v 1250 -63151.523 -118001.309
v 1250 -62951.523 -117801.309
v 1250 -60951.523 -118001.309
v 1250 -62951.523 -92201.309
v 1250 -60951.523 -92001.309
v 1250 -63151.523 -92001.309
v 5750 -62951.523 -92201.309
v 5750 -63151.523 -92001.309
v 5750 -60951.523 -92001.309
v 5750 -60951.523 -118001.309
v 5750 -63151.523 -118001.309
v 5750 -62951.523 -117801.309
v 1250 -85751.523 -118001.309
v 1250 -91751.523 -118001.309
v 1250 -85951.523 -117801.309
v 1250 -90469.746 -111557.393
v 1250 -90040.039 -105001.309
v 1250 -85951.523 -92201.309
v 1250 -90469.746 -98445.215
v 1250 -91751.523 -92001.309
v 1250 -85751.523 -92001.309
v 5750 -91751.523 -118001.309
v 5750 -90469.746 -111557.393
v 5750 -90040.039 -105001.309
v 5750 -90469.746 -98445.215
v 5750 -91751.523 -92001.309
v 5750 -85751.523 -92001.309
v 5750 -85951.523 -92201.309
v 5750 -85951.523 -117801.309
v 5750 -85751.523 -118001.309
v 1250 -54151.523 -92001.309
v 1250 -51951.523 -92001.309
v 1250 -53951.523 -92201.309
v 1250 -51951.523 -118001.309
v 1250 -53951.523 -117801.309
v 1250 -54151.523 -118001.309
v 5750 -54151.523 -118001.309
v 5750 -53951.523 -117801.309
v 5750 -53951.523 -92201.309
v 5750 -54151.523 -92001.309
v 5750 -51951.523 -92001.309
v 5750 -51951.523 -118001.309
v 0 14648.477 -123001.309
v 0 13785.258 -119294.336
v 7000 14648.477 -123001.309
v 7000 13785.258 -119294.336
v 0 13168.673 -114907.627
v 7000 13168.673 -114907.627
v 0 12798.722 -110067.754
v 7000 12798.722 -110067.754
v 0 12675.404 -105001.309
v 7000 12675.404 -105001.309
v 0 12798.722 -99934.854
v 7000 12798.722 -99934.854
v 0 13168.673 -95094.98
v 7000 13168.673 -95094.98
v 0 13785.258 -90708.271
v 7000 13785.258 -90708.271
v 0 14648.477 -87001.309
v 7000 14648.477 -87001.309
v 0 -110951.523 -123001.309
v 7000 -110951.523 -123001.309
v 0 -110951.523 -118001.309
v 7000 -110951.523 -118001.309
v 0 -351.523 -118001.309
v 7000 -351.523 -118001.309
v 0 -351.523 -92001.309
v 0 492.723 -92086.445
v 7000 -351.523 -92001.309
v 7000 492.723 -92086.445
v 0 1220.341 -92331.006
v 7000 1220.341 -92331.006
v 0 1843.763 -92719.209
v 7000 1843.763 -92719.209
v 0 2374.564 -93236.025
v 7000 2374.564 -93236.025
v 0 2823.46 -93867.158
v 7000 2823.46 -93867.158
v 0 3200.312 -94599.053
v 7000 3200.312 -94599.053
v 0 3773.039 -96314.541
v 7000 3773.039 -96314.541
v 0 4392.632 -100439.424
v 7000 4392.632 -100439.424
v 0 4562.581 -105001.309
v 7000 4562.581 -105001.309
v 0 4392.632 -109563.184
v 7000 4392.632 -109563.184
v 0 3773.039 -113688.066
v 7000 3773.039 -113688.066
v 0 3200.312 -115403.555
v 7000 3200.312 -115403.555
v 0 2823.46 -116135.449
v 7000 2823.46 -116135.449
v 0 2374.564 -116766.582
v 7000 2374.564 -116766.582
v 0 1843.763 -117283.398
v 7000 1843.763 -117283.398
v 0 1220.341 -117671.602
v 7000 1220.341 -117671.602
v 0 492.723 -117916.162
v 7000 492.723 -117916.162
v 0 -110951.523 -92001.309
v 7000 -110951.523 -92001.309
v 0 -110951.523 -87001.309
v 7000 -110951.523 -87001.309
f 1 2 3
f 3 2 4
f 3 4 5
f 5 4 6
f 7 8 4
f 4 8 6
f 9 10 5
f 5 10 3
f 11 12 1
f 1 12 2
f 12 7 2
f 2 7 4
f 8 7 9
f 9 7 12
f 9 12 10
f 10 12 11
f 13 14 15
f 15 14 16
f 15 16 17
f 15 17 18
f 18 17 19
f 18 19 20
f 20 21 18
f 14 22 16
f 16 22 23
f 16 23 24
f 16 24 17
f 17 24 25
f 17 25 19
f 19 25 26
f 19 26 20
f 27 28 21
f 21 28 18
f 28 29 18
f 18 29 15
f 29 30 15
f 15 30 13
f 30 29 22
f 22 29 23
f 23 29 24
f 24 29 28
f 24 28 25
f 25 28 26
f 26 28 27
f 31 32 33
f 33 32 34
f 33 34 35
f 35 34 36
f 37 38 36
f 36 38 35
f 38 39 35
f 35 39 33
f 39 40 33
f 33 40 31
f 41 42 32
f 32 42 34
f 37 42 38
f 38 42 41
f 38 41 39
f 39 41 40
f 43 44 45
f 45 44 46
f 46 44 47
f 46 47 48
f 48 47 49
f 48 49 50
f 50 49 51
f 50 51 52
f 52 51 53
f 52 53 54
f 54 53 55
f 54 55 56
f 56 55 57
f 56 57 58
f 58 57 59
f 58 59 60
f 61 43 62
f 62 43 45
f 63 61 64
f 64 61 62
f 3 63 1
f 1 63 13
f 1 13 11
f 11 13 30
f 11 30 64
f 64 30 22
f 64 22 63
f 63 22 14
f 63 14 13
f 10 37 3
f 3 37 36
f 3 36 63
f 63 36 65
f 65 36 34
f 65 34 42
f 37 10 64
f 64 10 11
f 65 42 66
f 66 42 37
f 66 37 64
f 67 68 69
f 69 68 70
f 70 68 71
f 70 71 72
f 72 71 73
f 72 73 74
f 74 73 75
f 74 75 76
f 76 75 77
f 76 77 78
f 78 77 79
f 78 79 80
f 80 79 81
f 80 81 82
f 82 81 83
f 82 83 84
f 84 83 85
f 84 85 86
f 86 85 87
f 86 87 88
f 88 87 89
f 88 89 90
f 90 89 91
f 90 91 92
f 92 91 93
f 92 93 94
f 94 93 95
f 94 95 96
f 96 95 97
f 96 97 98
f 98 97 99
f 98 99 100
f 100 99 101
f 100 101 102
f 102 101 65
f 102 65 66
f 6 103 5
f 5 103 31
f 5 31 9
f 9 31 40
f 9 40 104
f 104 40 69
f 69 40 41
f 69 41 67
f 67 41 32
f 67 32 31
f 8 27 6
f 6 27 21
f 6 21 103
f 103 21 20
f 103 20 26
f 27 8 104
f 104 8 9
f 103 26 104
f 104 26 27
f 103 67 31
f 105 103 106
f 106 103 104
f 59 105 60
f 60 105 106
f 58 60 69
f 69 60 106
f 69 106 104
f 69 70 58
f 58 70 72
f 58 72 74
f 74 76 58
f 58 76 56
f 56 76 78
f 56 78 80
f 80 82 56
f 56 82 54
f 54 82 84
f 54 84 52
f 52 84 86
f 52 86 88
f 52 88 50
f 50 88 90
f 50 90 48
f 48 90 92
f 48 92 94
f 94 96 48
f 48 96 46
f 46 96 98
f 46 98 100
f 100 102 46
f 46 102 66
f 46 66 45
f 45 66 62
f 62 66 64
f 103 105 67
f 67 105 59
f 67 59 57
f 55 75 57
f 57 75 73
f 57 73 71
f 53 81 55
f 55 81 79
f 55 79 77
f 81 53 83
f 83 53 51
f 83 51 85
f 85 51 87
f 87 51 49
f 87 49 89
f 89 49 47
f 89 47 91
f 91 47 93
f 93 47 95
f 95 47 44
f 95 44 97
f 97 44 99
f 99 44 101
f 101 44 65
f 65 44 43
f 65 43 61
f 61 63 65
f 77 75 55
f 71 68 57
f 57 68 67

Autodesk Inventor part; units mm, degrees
ref_plane "YZ Plane" through (0, 0, 0) normal (1, 0, 0) x (0, 1, 0)
ref_plane "XZ Plane" through (0, 0, 0) normal (0, 1, 0) x (-1, 0, 0)
ref_plane "XY Plane" through (0, 0, 0) normal (0, 0, 1) x (1, 0, 0)
sketch "スケッチ1" plane through (0, 0, 0) normal (1, 0, 0) x (0, 1, 0)
  line L0 (14648.4771, -87001.3054) -> (-110951.5229, -87001.3054)
  line L1 (-110951.5229, -87001.3054) -> (-110951.5229, -92001.3054)
  line L2 (-110951.5229, -92001.3054) -> (-351.5229, -92001.3054)
  spline S0 degree 4 poles (-351.5229, -92001.3054) (3276.1521, -92001.3054) (4991.3905, -99504.2453) (4991.3905, -110498.3655) (3276.1521, -118001.3054) (-351.5229, -118001.3054) knots 0 0 0 0 0 0.5 1 1 1 1 1
  line L3 (-351.5229, -118001.3054) -> (-110951.5229, -118001.3054)
  line L4 (-110951.5229, -118001.3054) -> (-110951.5229, -123001.3054)
  line L5 (-110951.5229, -123001.3054) -> (14648.4771, -123001.3054)
  spline S1 degree 3 poles (14648.4771, -87001.3054) (12017.7135, -95778.8229) (12017.7135, -114223.7879) (14648.4771, -123001.3054) knots 0 0 0 0 1 1 1 1
  point P0 (0, 0)
  point P1 (4033.3753, -97539.5737)
  point P2 (4033.3753, -112463.0371)
  point P3 (12947.7718, -97539.5737)
  point P4 (12947.7718, -112463.0371)
  dimension "d0" = 125600
  dimension "d1" = 5000
  dimension "d2" = 36000
  dimension "d3" = 15000
  dimension "d4" = 4384.8982
  dimension "d5" = 1700.7053
  dimension "d6" = 5538.2683
  dimension "d7" = 5538.2683
extrude "押し出し1" add sketch "スケッチ1" along normal blind 7000
ref_plane "作業平面1" through (3500, 0, 0) normal (1, 0, 0) x (0, 0, -1)
sketch "スケッチ2" plane through (3500, 0, 0) normal (1, 0, 0) x (0, 0, -1)
  line L0 (87001.3054, 14648.4771) -> (87001.3054, -110951.5229) projected
  line L1 (87001.3054, -110951.5229) -> (92001.3054, -110951.5229) projected
  line L2 (92001.3054, -110951.5229) -> (92001.3054, -351.5229) projected
  line L3 (118001.3054, -351.5229) -> (118001.3054, -110951.5229) projected
  line L4 (118001.3054, -110951.5229) -> (123001.3054, -110951.5229) projected
  line L5 (123001.3054, -110951.5229) -> (123001.3054, 14648.4771) projected
  line L6 (87001.3054, 14648.4771) -> (87001.3054, -110951.5229) projected
  arc A0 (118001.3054, -91751.5229) -> (92001.3054, -91751.5229) centre (105001.3054, -140268.1834) ccw
  line L7 (92001.3054, -110951.5229) -> (92001.3054, -351.5229) projected
  line L8 (118001.3054, -351.5229) -> (118001.3054, -110951.5229) projected
  line L9 (117801.3054, -85951.5229) -> (92201.3054, -85951.5229)
  line L10 (92201.3054, -85951.5229) -> (92001.3054, -85751.5229)
  line L11 (117801.3054, -85951.5229) -> (118001.3054, -85751.5229)
  line L12 (92001.3054, -91751.5229) -> (92001.3054, -85751.5229)
  line L13 (118001.3054, -91751.5229) -> (118001.3054, -85751.5229)
  line L14 (92201.3054, -62951.5229) -> (117801.3054, -62951.5229)
  line L15 (117801.3054, -62951.5229) -> (118001.3054, -63151.5229)
  line L16 (92201.3054, -62951.5229) -> (92001.3054, -63151.5229)
  line L17 (118001.3054, -63151.5229) -> (118001.3054, -60951.5229)
  line L18 (118001.3054, -60951.5229) -> (92001.3054, -60951.5229)
  line L19 (92001.3054, -60951.5229) -> (92001.3054, -63151.5229)
  line L20 (92001.3054, -51951.5229) -> (92001.3054, -54151.5229)
  line L21 (118001.3054, -51951.5229) -> (92001.3054, -51951.5229)
  line L22 (92201.3054, -53951.5229) -> (92001.3054, -54151.5229)
  line L23 (92201.3054, -53951.5229) -> (117801.3054, -53951.5229)
  line L24 (118001.3054, -54151.5229) -> (118001.3054, -51951.5229)
  line L25 (117801.3054, -53951.5229) -> (118001.3054, -54151.5229)
  point P0 (0, 0)
  dimension "d11" = 30
  dimension "d12" = 200
  dimension "d13" = 200
  dimension "d14" = 6000
  dimension "d15" = 25000
  dimension "d16" = 200
  dimension "d17" = 200
  dimension "d18" = 2000
  dimension "d19" = 50000
  dimension "d20" = 200
  dimension "d23" = 9000
extrude "押し出し2" add sketch "スケッチ2" along normal mid plane 4500 contours L2 L10 L9 L11 L3 A0 | L2 L18 L3 L15 L14 L16 | L2 L21 L3 L25 L23 L22
equation "\"d7\" = d6"
equation "\"d12\" = d13"
equation "\"d16\" = d17"
equation "\"d17\" = d13"
equation "\"d20\" = d17"
properties part number "main_tower"
